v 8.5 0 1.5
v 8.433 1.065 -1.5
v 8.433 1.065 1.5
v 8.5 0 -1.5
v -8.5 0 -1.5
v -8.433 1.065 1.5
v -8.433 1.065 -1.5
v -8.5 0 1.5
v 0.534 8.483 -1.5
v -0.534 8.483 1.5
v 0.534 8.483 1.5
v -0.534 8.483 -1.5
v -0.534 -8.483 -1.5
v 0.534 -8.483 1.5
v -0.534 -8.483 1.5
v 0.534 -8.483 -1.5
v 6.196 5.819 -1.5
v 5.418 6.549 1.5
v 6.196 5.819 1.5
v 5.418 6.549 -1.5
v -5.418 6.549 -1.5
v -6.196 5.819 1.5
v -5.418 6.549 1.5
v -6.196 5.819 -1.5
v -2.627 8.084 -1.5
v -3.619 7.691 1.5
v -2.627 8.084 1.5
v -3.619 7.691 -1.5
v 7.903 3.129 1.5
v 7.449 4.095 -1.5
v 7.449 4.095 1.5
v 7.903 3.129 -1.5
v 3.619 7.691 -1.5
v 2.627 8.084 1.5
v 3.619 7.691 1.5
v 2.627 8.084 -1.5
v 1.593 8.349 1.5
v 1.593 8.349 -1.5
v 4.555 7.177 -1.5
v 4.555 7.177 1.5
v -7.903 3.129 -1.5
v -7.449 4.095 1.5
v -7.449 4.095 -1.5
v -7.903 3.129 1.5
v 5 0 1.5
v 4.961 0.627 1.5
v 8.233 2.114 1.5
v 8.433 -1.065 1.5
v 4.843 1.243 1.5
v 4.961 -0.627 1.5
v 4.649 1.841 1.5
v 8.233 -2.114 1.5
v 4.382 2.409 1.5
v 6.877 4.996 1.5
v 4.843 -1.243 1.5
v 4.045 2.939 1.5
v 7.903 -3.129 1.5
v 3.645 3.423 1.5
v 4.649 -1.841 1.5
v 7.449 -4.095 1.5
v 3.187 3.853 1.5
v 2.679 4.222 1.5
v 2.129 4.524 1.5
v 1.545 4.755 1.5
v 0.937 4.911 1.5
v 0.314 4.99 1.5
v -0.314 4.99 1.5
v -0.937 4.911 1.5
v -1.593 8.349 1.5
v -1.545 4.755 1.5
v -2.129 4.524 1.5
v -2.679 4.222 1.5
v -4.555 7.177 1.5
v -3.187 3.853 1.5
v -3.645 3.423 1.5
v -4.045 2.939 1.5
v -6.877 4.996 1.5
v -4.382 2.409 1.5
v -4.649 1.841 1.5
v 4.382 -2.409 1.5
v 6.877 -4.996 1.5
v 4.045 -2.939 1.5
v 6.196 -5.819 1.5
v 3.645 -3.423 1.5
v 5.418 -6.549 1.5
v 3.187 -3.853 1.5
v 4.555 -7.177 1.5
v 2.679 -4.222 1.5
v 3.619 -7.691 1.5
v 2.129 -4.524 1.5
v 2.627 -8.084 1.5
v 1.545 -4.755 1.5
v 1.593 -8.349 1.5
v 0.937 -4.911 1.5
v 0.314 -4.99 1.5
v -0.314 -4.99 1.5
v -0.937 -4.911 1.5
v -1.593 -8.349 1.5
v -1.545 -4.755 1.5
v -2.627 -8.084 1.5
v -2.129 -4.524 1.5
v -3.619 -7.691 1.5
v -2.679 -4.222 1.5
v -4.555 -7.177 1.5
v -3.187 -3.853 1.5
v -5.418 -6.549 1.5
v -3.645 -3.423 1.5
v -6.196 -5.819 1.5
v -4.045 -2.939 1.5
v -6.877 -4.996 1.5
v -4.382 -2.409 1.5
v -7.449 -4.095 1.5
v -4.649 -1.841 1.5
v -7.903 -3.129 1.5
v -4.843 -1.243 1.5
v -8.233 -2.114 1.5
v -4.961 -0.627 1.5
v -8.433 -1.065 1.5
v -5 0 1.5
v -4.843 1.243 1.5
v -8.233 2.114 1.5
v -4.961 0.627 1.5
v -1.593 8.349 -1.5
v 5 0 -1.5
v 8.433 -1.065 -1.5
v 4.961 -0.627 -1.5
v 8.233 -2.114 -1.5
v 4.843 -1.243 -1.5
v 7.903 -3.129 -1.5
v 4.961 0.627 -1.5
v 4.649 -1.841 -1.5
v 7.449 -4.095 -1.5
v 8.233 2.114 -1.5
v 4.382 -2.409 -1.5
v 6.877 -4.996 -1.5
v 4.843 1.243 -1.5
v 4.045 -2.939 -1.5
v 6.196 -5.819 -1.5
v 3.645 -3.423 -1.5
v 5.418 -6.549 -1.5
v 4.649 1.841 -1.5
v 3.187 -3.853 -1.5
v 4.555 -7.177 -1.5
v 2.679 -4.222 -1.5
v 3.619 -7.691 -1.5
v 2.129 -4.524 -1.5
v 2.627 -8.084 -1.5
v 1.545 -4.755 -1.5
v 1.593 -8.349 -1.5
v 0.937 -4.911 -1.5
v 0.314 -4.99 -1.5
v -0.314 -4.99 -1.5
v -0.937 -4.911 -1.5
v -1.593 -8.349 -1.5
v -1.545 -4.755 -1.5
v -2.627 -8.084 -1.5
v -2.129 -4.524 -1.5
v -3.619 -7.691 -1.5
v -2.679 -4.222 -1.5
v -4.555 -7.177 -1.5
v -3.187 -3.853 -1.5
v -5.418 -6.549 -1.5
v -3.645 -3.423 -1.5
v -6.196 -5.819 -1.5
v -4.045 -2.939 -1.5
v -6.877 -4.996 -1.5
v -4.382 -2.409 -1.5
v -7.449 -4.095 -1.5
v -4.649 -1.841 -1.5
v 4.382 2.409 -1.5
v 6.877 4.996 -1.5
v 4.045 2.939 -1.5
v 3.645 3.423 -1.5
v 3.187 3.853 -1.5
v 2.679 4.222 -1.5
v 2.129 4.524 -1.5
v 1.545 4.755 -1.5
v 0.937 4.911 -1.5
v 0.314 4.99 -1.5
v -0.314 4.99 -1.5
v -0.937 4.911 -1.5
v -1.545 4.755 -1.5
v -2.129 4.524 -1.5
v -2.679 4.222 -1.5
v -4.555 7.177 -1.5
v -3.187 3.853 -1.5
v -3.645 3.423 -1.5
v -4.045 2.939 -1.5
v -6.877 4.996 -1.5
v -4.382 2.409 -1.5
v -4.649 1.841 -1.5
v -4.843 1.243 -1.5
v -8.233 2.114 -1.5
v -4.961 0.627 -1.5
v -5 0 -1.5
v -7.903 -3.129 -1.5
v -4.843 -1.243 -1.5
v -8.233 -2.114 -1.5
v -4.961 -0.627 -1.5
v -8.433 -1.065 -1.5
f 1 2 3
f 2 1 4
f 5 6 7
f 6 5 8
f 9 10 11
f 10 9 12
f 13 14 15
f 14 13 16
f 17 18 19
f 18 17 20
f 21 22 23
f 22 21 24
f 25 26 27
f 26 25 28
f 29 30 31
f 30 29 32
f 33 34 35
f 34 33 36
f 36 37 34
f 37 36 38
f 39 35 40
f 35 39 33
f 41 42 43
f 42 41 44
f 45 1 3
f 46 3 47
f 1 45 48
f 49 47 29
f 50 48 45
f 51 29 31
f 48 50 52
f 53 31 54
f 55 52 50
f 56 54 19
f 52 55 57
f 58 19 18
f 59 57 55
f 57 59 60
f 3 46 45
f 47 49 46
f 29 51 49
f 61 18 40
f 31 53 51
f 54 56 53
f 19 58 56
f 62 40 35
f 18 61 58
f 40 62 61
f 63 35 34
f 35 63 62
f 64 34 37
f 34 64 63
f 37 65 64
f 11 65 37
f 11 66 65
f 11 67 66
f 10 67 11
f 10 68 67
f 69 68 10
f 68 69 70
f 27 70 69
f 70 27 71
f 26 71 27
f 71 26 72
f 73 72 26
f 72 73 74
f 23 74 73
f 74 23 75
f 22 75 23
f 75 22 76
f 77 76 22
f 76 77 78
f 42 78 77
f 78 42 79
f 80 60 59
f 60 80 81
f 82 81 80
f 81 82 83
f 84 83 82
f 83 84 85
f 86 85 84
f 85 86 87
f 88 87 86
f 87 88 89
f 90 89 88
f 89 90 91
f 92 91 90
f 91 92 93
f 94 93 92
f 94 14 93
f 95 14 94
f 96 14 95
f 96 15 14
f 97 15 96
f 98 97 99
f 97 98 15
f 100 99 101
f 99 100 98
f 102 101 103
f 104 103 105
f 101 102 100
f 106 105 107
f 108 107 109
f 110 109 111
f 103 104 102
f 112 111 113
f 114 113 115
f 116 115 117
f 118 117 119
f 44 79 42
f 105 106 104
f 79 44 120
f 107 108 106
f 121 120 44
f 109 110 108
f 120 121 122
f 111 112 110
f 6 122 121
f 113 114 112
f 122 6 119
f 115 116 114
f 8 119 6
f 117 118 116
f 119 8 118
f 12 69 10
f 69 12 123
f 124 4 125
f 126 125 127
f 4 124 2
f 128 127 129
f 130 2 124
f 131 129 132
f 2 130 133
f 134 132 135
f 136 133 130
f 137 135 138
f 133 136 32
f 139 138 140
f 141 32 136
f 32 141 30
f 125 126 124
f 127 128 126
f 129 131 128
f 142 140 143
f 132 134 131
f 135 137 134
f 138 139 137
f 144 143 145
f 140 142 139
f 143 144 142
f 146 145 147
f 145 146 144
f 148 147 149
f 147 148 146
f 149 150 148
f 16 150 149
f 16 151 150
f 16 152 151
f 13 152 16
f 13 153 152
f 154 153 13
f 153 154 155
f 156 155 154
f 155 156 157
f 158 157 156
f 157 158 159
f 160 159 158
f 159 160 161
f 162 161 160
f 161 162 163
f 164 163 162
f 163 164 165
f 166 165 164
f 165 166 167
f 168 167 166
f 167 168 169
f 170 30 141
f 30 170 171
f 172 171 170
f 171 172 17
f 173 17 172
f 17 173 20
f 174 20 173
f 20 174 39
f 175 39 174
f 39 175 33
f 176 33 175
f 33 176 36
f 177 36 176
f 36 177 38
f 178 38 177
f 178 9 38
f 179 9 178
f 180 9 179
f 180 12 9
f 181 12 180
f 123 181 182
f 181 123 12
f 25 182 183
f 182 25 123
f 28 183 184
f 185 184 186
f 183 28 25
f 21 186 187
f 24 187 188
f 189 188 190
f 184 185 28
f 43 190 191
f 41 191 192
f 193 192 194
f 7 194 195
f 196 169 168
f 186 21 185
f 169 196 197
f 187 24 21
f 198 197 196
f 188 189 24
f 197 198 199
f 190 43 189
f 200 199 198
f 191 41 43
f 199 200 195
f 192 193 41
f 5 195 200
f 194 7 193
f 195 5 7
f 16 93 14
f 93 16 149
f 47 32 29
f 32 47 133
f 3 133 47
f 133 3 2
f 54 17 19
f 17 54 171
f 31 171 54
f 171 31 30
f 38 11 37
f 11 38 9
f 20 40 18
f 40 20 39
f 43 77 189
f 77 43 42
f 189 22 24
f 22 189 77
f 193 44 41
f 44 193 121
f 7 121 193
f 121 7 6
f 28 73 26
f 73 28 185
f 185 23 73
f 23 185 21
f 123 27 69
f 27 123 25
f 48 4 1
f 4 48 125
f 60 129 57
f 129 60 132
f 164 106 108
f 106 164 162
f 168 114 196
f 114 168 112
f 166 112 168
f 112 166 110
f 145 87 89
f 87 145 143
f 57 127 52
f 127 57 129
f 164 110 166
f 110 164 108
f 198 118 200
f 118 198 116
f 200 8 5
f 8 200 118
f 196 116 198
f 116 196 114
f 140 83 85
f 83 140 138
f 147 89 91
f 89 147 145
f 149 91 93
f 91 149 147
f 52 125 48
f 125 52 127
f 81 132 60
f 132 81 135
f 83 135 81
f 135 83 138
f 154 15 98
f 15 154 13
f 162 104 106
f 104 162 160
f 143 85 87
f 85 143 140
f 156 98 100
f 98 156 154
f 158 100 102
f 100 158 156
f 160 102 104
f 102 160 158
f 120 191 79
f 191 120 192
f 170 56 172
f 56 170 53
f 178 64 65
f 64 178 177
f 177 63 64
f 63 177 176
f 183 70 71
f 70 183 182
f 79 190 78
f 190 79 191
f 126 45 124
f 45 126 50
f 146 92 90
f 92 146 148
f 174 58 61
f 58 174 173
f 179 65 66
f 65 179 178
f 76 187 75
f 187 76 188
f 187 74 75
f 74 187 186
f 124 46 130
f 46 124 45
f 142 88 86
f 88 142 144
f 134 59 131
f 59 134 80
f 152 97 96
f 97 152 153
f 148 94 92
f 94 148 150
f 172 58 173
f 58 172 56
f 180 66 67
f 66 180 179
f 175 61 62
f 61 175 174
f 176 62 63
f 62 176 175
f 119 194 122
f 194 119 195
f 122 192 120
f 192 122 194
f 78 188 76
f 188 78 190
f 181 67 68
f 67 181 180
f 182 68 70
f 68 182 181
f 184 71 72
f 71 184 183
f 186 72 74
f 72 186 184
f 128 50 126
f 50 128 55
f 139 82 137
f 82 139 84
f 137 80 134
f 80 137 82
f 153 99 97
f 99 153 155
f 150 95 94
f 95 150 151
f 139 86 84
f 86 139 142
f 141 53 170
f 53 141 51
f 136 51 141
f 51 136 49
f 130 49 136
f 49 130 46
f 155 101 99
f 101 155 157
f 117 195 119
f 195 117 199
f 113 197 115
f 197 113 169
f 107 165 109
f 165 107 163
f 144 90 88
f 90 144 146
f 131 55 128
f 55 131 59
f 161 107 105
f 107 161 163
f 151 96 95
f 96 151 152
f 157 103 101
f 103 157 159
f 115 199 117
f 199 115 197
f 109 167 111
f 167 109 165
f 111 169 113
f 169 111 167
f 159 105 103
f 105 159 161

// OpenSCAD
$fn = 50;


difference() {
	union() {
		translate(v = [0, 0, -1.5000000000]) {
			cylinder(h = 3, r = 8.5000000000);
		}
	}
	union() {
		translate(v = [0, 0, -100.0000000000]) {
			cylinder(h = 200, r = 5.0000000000);
		}
	}
}
